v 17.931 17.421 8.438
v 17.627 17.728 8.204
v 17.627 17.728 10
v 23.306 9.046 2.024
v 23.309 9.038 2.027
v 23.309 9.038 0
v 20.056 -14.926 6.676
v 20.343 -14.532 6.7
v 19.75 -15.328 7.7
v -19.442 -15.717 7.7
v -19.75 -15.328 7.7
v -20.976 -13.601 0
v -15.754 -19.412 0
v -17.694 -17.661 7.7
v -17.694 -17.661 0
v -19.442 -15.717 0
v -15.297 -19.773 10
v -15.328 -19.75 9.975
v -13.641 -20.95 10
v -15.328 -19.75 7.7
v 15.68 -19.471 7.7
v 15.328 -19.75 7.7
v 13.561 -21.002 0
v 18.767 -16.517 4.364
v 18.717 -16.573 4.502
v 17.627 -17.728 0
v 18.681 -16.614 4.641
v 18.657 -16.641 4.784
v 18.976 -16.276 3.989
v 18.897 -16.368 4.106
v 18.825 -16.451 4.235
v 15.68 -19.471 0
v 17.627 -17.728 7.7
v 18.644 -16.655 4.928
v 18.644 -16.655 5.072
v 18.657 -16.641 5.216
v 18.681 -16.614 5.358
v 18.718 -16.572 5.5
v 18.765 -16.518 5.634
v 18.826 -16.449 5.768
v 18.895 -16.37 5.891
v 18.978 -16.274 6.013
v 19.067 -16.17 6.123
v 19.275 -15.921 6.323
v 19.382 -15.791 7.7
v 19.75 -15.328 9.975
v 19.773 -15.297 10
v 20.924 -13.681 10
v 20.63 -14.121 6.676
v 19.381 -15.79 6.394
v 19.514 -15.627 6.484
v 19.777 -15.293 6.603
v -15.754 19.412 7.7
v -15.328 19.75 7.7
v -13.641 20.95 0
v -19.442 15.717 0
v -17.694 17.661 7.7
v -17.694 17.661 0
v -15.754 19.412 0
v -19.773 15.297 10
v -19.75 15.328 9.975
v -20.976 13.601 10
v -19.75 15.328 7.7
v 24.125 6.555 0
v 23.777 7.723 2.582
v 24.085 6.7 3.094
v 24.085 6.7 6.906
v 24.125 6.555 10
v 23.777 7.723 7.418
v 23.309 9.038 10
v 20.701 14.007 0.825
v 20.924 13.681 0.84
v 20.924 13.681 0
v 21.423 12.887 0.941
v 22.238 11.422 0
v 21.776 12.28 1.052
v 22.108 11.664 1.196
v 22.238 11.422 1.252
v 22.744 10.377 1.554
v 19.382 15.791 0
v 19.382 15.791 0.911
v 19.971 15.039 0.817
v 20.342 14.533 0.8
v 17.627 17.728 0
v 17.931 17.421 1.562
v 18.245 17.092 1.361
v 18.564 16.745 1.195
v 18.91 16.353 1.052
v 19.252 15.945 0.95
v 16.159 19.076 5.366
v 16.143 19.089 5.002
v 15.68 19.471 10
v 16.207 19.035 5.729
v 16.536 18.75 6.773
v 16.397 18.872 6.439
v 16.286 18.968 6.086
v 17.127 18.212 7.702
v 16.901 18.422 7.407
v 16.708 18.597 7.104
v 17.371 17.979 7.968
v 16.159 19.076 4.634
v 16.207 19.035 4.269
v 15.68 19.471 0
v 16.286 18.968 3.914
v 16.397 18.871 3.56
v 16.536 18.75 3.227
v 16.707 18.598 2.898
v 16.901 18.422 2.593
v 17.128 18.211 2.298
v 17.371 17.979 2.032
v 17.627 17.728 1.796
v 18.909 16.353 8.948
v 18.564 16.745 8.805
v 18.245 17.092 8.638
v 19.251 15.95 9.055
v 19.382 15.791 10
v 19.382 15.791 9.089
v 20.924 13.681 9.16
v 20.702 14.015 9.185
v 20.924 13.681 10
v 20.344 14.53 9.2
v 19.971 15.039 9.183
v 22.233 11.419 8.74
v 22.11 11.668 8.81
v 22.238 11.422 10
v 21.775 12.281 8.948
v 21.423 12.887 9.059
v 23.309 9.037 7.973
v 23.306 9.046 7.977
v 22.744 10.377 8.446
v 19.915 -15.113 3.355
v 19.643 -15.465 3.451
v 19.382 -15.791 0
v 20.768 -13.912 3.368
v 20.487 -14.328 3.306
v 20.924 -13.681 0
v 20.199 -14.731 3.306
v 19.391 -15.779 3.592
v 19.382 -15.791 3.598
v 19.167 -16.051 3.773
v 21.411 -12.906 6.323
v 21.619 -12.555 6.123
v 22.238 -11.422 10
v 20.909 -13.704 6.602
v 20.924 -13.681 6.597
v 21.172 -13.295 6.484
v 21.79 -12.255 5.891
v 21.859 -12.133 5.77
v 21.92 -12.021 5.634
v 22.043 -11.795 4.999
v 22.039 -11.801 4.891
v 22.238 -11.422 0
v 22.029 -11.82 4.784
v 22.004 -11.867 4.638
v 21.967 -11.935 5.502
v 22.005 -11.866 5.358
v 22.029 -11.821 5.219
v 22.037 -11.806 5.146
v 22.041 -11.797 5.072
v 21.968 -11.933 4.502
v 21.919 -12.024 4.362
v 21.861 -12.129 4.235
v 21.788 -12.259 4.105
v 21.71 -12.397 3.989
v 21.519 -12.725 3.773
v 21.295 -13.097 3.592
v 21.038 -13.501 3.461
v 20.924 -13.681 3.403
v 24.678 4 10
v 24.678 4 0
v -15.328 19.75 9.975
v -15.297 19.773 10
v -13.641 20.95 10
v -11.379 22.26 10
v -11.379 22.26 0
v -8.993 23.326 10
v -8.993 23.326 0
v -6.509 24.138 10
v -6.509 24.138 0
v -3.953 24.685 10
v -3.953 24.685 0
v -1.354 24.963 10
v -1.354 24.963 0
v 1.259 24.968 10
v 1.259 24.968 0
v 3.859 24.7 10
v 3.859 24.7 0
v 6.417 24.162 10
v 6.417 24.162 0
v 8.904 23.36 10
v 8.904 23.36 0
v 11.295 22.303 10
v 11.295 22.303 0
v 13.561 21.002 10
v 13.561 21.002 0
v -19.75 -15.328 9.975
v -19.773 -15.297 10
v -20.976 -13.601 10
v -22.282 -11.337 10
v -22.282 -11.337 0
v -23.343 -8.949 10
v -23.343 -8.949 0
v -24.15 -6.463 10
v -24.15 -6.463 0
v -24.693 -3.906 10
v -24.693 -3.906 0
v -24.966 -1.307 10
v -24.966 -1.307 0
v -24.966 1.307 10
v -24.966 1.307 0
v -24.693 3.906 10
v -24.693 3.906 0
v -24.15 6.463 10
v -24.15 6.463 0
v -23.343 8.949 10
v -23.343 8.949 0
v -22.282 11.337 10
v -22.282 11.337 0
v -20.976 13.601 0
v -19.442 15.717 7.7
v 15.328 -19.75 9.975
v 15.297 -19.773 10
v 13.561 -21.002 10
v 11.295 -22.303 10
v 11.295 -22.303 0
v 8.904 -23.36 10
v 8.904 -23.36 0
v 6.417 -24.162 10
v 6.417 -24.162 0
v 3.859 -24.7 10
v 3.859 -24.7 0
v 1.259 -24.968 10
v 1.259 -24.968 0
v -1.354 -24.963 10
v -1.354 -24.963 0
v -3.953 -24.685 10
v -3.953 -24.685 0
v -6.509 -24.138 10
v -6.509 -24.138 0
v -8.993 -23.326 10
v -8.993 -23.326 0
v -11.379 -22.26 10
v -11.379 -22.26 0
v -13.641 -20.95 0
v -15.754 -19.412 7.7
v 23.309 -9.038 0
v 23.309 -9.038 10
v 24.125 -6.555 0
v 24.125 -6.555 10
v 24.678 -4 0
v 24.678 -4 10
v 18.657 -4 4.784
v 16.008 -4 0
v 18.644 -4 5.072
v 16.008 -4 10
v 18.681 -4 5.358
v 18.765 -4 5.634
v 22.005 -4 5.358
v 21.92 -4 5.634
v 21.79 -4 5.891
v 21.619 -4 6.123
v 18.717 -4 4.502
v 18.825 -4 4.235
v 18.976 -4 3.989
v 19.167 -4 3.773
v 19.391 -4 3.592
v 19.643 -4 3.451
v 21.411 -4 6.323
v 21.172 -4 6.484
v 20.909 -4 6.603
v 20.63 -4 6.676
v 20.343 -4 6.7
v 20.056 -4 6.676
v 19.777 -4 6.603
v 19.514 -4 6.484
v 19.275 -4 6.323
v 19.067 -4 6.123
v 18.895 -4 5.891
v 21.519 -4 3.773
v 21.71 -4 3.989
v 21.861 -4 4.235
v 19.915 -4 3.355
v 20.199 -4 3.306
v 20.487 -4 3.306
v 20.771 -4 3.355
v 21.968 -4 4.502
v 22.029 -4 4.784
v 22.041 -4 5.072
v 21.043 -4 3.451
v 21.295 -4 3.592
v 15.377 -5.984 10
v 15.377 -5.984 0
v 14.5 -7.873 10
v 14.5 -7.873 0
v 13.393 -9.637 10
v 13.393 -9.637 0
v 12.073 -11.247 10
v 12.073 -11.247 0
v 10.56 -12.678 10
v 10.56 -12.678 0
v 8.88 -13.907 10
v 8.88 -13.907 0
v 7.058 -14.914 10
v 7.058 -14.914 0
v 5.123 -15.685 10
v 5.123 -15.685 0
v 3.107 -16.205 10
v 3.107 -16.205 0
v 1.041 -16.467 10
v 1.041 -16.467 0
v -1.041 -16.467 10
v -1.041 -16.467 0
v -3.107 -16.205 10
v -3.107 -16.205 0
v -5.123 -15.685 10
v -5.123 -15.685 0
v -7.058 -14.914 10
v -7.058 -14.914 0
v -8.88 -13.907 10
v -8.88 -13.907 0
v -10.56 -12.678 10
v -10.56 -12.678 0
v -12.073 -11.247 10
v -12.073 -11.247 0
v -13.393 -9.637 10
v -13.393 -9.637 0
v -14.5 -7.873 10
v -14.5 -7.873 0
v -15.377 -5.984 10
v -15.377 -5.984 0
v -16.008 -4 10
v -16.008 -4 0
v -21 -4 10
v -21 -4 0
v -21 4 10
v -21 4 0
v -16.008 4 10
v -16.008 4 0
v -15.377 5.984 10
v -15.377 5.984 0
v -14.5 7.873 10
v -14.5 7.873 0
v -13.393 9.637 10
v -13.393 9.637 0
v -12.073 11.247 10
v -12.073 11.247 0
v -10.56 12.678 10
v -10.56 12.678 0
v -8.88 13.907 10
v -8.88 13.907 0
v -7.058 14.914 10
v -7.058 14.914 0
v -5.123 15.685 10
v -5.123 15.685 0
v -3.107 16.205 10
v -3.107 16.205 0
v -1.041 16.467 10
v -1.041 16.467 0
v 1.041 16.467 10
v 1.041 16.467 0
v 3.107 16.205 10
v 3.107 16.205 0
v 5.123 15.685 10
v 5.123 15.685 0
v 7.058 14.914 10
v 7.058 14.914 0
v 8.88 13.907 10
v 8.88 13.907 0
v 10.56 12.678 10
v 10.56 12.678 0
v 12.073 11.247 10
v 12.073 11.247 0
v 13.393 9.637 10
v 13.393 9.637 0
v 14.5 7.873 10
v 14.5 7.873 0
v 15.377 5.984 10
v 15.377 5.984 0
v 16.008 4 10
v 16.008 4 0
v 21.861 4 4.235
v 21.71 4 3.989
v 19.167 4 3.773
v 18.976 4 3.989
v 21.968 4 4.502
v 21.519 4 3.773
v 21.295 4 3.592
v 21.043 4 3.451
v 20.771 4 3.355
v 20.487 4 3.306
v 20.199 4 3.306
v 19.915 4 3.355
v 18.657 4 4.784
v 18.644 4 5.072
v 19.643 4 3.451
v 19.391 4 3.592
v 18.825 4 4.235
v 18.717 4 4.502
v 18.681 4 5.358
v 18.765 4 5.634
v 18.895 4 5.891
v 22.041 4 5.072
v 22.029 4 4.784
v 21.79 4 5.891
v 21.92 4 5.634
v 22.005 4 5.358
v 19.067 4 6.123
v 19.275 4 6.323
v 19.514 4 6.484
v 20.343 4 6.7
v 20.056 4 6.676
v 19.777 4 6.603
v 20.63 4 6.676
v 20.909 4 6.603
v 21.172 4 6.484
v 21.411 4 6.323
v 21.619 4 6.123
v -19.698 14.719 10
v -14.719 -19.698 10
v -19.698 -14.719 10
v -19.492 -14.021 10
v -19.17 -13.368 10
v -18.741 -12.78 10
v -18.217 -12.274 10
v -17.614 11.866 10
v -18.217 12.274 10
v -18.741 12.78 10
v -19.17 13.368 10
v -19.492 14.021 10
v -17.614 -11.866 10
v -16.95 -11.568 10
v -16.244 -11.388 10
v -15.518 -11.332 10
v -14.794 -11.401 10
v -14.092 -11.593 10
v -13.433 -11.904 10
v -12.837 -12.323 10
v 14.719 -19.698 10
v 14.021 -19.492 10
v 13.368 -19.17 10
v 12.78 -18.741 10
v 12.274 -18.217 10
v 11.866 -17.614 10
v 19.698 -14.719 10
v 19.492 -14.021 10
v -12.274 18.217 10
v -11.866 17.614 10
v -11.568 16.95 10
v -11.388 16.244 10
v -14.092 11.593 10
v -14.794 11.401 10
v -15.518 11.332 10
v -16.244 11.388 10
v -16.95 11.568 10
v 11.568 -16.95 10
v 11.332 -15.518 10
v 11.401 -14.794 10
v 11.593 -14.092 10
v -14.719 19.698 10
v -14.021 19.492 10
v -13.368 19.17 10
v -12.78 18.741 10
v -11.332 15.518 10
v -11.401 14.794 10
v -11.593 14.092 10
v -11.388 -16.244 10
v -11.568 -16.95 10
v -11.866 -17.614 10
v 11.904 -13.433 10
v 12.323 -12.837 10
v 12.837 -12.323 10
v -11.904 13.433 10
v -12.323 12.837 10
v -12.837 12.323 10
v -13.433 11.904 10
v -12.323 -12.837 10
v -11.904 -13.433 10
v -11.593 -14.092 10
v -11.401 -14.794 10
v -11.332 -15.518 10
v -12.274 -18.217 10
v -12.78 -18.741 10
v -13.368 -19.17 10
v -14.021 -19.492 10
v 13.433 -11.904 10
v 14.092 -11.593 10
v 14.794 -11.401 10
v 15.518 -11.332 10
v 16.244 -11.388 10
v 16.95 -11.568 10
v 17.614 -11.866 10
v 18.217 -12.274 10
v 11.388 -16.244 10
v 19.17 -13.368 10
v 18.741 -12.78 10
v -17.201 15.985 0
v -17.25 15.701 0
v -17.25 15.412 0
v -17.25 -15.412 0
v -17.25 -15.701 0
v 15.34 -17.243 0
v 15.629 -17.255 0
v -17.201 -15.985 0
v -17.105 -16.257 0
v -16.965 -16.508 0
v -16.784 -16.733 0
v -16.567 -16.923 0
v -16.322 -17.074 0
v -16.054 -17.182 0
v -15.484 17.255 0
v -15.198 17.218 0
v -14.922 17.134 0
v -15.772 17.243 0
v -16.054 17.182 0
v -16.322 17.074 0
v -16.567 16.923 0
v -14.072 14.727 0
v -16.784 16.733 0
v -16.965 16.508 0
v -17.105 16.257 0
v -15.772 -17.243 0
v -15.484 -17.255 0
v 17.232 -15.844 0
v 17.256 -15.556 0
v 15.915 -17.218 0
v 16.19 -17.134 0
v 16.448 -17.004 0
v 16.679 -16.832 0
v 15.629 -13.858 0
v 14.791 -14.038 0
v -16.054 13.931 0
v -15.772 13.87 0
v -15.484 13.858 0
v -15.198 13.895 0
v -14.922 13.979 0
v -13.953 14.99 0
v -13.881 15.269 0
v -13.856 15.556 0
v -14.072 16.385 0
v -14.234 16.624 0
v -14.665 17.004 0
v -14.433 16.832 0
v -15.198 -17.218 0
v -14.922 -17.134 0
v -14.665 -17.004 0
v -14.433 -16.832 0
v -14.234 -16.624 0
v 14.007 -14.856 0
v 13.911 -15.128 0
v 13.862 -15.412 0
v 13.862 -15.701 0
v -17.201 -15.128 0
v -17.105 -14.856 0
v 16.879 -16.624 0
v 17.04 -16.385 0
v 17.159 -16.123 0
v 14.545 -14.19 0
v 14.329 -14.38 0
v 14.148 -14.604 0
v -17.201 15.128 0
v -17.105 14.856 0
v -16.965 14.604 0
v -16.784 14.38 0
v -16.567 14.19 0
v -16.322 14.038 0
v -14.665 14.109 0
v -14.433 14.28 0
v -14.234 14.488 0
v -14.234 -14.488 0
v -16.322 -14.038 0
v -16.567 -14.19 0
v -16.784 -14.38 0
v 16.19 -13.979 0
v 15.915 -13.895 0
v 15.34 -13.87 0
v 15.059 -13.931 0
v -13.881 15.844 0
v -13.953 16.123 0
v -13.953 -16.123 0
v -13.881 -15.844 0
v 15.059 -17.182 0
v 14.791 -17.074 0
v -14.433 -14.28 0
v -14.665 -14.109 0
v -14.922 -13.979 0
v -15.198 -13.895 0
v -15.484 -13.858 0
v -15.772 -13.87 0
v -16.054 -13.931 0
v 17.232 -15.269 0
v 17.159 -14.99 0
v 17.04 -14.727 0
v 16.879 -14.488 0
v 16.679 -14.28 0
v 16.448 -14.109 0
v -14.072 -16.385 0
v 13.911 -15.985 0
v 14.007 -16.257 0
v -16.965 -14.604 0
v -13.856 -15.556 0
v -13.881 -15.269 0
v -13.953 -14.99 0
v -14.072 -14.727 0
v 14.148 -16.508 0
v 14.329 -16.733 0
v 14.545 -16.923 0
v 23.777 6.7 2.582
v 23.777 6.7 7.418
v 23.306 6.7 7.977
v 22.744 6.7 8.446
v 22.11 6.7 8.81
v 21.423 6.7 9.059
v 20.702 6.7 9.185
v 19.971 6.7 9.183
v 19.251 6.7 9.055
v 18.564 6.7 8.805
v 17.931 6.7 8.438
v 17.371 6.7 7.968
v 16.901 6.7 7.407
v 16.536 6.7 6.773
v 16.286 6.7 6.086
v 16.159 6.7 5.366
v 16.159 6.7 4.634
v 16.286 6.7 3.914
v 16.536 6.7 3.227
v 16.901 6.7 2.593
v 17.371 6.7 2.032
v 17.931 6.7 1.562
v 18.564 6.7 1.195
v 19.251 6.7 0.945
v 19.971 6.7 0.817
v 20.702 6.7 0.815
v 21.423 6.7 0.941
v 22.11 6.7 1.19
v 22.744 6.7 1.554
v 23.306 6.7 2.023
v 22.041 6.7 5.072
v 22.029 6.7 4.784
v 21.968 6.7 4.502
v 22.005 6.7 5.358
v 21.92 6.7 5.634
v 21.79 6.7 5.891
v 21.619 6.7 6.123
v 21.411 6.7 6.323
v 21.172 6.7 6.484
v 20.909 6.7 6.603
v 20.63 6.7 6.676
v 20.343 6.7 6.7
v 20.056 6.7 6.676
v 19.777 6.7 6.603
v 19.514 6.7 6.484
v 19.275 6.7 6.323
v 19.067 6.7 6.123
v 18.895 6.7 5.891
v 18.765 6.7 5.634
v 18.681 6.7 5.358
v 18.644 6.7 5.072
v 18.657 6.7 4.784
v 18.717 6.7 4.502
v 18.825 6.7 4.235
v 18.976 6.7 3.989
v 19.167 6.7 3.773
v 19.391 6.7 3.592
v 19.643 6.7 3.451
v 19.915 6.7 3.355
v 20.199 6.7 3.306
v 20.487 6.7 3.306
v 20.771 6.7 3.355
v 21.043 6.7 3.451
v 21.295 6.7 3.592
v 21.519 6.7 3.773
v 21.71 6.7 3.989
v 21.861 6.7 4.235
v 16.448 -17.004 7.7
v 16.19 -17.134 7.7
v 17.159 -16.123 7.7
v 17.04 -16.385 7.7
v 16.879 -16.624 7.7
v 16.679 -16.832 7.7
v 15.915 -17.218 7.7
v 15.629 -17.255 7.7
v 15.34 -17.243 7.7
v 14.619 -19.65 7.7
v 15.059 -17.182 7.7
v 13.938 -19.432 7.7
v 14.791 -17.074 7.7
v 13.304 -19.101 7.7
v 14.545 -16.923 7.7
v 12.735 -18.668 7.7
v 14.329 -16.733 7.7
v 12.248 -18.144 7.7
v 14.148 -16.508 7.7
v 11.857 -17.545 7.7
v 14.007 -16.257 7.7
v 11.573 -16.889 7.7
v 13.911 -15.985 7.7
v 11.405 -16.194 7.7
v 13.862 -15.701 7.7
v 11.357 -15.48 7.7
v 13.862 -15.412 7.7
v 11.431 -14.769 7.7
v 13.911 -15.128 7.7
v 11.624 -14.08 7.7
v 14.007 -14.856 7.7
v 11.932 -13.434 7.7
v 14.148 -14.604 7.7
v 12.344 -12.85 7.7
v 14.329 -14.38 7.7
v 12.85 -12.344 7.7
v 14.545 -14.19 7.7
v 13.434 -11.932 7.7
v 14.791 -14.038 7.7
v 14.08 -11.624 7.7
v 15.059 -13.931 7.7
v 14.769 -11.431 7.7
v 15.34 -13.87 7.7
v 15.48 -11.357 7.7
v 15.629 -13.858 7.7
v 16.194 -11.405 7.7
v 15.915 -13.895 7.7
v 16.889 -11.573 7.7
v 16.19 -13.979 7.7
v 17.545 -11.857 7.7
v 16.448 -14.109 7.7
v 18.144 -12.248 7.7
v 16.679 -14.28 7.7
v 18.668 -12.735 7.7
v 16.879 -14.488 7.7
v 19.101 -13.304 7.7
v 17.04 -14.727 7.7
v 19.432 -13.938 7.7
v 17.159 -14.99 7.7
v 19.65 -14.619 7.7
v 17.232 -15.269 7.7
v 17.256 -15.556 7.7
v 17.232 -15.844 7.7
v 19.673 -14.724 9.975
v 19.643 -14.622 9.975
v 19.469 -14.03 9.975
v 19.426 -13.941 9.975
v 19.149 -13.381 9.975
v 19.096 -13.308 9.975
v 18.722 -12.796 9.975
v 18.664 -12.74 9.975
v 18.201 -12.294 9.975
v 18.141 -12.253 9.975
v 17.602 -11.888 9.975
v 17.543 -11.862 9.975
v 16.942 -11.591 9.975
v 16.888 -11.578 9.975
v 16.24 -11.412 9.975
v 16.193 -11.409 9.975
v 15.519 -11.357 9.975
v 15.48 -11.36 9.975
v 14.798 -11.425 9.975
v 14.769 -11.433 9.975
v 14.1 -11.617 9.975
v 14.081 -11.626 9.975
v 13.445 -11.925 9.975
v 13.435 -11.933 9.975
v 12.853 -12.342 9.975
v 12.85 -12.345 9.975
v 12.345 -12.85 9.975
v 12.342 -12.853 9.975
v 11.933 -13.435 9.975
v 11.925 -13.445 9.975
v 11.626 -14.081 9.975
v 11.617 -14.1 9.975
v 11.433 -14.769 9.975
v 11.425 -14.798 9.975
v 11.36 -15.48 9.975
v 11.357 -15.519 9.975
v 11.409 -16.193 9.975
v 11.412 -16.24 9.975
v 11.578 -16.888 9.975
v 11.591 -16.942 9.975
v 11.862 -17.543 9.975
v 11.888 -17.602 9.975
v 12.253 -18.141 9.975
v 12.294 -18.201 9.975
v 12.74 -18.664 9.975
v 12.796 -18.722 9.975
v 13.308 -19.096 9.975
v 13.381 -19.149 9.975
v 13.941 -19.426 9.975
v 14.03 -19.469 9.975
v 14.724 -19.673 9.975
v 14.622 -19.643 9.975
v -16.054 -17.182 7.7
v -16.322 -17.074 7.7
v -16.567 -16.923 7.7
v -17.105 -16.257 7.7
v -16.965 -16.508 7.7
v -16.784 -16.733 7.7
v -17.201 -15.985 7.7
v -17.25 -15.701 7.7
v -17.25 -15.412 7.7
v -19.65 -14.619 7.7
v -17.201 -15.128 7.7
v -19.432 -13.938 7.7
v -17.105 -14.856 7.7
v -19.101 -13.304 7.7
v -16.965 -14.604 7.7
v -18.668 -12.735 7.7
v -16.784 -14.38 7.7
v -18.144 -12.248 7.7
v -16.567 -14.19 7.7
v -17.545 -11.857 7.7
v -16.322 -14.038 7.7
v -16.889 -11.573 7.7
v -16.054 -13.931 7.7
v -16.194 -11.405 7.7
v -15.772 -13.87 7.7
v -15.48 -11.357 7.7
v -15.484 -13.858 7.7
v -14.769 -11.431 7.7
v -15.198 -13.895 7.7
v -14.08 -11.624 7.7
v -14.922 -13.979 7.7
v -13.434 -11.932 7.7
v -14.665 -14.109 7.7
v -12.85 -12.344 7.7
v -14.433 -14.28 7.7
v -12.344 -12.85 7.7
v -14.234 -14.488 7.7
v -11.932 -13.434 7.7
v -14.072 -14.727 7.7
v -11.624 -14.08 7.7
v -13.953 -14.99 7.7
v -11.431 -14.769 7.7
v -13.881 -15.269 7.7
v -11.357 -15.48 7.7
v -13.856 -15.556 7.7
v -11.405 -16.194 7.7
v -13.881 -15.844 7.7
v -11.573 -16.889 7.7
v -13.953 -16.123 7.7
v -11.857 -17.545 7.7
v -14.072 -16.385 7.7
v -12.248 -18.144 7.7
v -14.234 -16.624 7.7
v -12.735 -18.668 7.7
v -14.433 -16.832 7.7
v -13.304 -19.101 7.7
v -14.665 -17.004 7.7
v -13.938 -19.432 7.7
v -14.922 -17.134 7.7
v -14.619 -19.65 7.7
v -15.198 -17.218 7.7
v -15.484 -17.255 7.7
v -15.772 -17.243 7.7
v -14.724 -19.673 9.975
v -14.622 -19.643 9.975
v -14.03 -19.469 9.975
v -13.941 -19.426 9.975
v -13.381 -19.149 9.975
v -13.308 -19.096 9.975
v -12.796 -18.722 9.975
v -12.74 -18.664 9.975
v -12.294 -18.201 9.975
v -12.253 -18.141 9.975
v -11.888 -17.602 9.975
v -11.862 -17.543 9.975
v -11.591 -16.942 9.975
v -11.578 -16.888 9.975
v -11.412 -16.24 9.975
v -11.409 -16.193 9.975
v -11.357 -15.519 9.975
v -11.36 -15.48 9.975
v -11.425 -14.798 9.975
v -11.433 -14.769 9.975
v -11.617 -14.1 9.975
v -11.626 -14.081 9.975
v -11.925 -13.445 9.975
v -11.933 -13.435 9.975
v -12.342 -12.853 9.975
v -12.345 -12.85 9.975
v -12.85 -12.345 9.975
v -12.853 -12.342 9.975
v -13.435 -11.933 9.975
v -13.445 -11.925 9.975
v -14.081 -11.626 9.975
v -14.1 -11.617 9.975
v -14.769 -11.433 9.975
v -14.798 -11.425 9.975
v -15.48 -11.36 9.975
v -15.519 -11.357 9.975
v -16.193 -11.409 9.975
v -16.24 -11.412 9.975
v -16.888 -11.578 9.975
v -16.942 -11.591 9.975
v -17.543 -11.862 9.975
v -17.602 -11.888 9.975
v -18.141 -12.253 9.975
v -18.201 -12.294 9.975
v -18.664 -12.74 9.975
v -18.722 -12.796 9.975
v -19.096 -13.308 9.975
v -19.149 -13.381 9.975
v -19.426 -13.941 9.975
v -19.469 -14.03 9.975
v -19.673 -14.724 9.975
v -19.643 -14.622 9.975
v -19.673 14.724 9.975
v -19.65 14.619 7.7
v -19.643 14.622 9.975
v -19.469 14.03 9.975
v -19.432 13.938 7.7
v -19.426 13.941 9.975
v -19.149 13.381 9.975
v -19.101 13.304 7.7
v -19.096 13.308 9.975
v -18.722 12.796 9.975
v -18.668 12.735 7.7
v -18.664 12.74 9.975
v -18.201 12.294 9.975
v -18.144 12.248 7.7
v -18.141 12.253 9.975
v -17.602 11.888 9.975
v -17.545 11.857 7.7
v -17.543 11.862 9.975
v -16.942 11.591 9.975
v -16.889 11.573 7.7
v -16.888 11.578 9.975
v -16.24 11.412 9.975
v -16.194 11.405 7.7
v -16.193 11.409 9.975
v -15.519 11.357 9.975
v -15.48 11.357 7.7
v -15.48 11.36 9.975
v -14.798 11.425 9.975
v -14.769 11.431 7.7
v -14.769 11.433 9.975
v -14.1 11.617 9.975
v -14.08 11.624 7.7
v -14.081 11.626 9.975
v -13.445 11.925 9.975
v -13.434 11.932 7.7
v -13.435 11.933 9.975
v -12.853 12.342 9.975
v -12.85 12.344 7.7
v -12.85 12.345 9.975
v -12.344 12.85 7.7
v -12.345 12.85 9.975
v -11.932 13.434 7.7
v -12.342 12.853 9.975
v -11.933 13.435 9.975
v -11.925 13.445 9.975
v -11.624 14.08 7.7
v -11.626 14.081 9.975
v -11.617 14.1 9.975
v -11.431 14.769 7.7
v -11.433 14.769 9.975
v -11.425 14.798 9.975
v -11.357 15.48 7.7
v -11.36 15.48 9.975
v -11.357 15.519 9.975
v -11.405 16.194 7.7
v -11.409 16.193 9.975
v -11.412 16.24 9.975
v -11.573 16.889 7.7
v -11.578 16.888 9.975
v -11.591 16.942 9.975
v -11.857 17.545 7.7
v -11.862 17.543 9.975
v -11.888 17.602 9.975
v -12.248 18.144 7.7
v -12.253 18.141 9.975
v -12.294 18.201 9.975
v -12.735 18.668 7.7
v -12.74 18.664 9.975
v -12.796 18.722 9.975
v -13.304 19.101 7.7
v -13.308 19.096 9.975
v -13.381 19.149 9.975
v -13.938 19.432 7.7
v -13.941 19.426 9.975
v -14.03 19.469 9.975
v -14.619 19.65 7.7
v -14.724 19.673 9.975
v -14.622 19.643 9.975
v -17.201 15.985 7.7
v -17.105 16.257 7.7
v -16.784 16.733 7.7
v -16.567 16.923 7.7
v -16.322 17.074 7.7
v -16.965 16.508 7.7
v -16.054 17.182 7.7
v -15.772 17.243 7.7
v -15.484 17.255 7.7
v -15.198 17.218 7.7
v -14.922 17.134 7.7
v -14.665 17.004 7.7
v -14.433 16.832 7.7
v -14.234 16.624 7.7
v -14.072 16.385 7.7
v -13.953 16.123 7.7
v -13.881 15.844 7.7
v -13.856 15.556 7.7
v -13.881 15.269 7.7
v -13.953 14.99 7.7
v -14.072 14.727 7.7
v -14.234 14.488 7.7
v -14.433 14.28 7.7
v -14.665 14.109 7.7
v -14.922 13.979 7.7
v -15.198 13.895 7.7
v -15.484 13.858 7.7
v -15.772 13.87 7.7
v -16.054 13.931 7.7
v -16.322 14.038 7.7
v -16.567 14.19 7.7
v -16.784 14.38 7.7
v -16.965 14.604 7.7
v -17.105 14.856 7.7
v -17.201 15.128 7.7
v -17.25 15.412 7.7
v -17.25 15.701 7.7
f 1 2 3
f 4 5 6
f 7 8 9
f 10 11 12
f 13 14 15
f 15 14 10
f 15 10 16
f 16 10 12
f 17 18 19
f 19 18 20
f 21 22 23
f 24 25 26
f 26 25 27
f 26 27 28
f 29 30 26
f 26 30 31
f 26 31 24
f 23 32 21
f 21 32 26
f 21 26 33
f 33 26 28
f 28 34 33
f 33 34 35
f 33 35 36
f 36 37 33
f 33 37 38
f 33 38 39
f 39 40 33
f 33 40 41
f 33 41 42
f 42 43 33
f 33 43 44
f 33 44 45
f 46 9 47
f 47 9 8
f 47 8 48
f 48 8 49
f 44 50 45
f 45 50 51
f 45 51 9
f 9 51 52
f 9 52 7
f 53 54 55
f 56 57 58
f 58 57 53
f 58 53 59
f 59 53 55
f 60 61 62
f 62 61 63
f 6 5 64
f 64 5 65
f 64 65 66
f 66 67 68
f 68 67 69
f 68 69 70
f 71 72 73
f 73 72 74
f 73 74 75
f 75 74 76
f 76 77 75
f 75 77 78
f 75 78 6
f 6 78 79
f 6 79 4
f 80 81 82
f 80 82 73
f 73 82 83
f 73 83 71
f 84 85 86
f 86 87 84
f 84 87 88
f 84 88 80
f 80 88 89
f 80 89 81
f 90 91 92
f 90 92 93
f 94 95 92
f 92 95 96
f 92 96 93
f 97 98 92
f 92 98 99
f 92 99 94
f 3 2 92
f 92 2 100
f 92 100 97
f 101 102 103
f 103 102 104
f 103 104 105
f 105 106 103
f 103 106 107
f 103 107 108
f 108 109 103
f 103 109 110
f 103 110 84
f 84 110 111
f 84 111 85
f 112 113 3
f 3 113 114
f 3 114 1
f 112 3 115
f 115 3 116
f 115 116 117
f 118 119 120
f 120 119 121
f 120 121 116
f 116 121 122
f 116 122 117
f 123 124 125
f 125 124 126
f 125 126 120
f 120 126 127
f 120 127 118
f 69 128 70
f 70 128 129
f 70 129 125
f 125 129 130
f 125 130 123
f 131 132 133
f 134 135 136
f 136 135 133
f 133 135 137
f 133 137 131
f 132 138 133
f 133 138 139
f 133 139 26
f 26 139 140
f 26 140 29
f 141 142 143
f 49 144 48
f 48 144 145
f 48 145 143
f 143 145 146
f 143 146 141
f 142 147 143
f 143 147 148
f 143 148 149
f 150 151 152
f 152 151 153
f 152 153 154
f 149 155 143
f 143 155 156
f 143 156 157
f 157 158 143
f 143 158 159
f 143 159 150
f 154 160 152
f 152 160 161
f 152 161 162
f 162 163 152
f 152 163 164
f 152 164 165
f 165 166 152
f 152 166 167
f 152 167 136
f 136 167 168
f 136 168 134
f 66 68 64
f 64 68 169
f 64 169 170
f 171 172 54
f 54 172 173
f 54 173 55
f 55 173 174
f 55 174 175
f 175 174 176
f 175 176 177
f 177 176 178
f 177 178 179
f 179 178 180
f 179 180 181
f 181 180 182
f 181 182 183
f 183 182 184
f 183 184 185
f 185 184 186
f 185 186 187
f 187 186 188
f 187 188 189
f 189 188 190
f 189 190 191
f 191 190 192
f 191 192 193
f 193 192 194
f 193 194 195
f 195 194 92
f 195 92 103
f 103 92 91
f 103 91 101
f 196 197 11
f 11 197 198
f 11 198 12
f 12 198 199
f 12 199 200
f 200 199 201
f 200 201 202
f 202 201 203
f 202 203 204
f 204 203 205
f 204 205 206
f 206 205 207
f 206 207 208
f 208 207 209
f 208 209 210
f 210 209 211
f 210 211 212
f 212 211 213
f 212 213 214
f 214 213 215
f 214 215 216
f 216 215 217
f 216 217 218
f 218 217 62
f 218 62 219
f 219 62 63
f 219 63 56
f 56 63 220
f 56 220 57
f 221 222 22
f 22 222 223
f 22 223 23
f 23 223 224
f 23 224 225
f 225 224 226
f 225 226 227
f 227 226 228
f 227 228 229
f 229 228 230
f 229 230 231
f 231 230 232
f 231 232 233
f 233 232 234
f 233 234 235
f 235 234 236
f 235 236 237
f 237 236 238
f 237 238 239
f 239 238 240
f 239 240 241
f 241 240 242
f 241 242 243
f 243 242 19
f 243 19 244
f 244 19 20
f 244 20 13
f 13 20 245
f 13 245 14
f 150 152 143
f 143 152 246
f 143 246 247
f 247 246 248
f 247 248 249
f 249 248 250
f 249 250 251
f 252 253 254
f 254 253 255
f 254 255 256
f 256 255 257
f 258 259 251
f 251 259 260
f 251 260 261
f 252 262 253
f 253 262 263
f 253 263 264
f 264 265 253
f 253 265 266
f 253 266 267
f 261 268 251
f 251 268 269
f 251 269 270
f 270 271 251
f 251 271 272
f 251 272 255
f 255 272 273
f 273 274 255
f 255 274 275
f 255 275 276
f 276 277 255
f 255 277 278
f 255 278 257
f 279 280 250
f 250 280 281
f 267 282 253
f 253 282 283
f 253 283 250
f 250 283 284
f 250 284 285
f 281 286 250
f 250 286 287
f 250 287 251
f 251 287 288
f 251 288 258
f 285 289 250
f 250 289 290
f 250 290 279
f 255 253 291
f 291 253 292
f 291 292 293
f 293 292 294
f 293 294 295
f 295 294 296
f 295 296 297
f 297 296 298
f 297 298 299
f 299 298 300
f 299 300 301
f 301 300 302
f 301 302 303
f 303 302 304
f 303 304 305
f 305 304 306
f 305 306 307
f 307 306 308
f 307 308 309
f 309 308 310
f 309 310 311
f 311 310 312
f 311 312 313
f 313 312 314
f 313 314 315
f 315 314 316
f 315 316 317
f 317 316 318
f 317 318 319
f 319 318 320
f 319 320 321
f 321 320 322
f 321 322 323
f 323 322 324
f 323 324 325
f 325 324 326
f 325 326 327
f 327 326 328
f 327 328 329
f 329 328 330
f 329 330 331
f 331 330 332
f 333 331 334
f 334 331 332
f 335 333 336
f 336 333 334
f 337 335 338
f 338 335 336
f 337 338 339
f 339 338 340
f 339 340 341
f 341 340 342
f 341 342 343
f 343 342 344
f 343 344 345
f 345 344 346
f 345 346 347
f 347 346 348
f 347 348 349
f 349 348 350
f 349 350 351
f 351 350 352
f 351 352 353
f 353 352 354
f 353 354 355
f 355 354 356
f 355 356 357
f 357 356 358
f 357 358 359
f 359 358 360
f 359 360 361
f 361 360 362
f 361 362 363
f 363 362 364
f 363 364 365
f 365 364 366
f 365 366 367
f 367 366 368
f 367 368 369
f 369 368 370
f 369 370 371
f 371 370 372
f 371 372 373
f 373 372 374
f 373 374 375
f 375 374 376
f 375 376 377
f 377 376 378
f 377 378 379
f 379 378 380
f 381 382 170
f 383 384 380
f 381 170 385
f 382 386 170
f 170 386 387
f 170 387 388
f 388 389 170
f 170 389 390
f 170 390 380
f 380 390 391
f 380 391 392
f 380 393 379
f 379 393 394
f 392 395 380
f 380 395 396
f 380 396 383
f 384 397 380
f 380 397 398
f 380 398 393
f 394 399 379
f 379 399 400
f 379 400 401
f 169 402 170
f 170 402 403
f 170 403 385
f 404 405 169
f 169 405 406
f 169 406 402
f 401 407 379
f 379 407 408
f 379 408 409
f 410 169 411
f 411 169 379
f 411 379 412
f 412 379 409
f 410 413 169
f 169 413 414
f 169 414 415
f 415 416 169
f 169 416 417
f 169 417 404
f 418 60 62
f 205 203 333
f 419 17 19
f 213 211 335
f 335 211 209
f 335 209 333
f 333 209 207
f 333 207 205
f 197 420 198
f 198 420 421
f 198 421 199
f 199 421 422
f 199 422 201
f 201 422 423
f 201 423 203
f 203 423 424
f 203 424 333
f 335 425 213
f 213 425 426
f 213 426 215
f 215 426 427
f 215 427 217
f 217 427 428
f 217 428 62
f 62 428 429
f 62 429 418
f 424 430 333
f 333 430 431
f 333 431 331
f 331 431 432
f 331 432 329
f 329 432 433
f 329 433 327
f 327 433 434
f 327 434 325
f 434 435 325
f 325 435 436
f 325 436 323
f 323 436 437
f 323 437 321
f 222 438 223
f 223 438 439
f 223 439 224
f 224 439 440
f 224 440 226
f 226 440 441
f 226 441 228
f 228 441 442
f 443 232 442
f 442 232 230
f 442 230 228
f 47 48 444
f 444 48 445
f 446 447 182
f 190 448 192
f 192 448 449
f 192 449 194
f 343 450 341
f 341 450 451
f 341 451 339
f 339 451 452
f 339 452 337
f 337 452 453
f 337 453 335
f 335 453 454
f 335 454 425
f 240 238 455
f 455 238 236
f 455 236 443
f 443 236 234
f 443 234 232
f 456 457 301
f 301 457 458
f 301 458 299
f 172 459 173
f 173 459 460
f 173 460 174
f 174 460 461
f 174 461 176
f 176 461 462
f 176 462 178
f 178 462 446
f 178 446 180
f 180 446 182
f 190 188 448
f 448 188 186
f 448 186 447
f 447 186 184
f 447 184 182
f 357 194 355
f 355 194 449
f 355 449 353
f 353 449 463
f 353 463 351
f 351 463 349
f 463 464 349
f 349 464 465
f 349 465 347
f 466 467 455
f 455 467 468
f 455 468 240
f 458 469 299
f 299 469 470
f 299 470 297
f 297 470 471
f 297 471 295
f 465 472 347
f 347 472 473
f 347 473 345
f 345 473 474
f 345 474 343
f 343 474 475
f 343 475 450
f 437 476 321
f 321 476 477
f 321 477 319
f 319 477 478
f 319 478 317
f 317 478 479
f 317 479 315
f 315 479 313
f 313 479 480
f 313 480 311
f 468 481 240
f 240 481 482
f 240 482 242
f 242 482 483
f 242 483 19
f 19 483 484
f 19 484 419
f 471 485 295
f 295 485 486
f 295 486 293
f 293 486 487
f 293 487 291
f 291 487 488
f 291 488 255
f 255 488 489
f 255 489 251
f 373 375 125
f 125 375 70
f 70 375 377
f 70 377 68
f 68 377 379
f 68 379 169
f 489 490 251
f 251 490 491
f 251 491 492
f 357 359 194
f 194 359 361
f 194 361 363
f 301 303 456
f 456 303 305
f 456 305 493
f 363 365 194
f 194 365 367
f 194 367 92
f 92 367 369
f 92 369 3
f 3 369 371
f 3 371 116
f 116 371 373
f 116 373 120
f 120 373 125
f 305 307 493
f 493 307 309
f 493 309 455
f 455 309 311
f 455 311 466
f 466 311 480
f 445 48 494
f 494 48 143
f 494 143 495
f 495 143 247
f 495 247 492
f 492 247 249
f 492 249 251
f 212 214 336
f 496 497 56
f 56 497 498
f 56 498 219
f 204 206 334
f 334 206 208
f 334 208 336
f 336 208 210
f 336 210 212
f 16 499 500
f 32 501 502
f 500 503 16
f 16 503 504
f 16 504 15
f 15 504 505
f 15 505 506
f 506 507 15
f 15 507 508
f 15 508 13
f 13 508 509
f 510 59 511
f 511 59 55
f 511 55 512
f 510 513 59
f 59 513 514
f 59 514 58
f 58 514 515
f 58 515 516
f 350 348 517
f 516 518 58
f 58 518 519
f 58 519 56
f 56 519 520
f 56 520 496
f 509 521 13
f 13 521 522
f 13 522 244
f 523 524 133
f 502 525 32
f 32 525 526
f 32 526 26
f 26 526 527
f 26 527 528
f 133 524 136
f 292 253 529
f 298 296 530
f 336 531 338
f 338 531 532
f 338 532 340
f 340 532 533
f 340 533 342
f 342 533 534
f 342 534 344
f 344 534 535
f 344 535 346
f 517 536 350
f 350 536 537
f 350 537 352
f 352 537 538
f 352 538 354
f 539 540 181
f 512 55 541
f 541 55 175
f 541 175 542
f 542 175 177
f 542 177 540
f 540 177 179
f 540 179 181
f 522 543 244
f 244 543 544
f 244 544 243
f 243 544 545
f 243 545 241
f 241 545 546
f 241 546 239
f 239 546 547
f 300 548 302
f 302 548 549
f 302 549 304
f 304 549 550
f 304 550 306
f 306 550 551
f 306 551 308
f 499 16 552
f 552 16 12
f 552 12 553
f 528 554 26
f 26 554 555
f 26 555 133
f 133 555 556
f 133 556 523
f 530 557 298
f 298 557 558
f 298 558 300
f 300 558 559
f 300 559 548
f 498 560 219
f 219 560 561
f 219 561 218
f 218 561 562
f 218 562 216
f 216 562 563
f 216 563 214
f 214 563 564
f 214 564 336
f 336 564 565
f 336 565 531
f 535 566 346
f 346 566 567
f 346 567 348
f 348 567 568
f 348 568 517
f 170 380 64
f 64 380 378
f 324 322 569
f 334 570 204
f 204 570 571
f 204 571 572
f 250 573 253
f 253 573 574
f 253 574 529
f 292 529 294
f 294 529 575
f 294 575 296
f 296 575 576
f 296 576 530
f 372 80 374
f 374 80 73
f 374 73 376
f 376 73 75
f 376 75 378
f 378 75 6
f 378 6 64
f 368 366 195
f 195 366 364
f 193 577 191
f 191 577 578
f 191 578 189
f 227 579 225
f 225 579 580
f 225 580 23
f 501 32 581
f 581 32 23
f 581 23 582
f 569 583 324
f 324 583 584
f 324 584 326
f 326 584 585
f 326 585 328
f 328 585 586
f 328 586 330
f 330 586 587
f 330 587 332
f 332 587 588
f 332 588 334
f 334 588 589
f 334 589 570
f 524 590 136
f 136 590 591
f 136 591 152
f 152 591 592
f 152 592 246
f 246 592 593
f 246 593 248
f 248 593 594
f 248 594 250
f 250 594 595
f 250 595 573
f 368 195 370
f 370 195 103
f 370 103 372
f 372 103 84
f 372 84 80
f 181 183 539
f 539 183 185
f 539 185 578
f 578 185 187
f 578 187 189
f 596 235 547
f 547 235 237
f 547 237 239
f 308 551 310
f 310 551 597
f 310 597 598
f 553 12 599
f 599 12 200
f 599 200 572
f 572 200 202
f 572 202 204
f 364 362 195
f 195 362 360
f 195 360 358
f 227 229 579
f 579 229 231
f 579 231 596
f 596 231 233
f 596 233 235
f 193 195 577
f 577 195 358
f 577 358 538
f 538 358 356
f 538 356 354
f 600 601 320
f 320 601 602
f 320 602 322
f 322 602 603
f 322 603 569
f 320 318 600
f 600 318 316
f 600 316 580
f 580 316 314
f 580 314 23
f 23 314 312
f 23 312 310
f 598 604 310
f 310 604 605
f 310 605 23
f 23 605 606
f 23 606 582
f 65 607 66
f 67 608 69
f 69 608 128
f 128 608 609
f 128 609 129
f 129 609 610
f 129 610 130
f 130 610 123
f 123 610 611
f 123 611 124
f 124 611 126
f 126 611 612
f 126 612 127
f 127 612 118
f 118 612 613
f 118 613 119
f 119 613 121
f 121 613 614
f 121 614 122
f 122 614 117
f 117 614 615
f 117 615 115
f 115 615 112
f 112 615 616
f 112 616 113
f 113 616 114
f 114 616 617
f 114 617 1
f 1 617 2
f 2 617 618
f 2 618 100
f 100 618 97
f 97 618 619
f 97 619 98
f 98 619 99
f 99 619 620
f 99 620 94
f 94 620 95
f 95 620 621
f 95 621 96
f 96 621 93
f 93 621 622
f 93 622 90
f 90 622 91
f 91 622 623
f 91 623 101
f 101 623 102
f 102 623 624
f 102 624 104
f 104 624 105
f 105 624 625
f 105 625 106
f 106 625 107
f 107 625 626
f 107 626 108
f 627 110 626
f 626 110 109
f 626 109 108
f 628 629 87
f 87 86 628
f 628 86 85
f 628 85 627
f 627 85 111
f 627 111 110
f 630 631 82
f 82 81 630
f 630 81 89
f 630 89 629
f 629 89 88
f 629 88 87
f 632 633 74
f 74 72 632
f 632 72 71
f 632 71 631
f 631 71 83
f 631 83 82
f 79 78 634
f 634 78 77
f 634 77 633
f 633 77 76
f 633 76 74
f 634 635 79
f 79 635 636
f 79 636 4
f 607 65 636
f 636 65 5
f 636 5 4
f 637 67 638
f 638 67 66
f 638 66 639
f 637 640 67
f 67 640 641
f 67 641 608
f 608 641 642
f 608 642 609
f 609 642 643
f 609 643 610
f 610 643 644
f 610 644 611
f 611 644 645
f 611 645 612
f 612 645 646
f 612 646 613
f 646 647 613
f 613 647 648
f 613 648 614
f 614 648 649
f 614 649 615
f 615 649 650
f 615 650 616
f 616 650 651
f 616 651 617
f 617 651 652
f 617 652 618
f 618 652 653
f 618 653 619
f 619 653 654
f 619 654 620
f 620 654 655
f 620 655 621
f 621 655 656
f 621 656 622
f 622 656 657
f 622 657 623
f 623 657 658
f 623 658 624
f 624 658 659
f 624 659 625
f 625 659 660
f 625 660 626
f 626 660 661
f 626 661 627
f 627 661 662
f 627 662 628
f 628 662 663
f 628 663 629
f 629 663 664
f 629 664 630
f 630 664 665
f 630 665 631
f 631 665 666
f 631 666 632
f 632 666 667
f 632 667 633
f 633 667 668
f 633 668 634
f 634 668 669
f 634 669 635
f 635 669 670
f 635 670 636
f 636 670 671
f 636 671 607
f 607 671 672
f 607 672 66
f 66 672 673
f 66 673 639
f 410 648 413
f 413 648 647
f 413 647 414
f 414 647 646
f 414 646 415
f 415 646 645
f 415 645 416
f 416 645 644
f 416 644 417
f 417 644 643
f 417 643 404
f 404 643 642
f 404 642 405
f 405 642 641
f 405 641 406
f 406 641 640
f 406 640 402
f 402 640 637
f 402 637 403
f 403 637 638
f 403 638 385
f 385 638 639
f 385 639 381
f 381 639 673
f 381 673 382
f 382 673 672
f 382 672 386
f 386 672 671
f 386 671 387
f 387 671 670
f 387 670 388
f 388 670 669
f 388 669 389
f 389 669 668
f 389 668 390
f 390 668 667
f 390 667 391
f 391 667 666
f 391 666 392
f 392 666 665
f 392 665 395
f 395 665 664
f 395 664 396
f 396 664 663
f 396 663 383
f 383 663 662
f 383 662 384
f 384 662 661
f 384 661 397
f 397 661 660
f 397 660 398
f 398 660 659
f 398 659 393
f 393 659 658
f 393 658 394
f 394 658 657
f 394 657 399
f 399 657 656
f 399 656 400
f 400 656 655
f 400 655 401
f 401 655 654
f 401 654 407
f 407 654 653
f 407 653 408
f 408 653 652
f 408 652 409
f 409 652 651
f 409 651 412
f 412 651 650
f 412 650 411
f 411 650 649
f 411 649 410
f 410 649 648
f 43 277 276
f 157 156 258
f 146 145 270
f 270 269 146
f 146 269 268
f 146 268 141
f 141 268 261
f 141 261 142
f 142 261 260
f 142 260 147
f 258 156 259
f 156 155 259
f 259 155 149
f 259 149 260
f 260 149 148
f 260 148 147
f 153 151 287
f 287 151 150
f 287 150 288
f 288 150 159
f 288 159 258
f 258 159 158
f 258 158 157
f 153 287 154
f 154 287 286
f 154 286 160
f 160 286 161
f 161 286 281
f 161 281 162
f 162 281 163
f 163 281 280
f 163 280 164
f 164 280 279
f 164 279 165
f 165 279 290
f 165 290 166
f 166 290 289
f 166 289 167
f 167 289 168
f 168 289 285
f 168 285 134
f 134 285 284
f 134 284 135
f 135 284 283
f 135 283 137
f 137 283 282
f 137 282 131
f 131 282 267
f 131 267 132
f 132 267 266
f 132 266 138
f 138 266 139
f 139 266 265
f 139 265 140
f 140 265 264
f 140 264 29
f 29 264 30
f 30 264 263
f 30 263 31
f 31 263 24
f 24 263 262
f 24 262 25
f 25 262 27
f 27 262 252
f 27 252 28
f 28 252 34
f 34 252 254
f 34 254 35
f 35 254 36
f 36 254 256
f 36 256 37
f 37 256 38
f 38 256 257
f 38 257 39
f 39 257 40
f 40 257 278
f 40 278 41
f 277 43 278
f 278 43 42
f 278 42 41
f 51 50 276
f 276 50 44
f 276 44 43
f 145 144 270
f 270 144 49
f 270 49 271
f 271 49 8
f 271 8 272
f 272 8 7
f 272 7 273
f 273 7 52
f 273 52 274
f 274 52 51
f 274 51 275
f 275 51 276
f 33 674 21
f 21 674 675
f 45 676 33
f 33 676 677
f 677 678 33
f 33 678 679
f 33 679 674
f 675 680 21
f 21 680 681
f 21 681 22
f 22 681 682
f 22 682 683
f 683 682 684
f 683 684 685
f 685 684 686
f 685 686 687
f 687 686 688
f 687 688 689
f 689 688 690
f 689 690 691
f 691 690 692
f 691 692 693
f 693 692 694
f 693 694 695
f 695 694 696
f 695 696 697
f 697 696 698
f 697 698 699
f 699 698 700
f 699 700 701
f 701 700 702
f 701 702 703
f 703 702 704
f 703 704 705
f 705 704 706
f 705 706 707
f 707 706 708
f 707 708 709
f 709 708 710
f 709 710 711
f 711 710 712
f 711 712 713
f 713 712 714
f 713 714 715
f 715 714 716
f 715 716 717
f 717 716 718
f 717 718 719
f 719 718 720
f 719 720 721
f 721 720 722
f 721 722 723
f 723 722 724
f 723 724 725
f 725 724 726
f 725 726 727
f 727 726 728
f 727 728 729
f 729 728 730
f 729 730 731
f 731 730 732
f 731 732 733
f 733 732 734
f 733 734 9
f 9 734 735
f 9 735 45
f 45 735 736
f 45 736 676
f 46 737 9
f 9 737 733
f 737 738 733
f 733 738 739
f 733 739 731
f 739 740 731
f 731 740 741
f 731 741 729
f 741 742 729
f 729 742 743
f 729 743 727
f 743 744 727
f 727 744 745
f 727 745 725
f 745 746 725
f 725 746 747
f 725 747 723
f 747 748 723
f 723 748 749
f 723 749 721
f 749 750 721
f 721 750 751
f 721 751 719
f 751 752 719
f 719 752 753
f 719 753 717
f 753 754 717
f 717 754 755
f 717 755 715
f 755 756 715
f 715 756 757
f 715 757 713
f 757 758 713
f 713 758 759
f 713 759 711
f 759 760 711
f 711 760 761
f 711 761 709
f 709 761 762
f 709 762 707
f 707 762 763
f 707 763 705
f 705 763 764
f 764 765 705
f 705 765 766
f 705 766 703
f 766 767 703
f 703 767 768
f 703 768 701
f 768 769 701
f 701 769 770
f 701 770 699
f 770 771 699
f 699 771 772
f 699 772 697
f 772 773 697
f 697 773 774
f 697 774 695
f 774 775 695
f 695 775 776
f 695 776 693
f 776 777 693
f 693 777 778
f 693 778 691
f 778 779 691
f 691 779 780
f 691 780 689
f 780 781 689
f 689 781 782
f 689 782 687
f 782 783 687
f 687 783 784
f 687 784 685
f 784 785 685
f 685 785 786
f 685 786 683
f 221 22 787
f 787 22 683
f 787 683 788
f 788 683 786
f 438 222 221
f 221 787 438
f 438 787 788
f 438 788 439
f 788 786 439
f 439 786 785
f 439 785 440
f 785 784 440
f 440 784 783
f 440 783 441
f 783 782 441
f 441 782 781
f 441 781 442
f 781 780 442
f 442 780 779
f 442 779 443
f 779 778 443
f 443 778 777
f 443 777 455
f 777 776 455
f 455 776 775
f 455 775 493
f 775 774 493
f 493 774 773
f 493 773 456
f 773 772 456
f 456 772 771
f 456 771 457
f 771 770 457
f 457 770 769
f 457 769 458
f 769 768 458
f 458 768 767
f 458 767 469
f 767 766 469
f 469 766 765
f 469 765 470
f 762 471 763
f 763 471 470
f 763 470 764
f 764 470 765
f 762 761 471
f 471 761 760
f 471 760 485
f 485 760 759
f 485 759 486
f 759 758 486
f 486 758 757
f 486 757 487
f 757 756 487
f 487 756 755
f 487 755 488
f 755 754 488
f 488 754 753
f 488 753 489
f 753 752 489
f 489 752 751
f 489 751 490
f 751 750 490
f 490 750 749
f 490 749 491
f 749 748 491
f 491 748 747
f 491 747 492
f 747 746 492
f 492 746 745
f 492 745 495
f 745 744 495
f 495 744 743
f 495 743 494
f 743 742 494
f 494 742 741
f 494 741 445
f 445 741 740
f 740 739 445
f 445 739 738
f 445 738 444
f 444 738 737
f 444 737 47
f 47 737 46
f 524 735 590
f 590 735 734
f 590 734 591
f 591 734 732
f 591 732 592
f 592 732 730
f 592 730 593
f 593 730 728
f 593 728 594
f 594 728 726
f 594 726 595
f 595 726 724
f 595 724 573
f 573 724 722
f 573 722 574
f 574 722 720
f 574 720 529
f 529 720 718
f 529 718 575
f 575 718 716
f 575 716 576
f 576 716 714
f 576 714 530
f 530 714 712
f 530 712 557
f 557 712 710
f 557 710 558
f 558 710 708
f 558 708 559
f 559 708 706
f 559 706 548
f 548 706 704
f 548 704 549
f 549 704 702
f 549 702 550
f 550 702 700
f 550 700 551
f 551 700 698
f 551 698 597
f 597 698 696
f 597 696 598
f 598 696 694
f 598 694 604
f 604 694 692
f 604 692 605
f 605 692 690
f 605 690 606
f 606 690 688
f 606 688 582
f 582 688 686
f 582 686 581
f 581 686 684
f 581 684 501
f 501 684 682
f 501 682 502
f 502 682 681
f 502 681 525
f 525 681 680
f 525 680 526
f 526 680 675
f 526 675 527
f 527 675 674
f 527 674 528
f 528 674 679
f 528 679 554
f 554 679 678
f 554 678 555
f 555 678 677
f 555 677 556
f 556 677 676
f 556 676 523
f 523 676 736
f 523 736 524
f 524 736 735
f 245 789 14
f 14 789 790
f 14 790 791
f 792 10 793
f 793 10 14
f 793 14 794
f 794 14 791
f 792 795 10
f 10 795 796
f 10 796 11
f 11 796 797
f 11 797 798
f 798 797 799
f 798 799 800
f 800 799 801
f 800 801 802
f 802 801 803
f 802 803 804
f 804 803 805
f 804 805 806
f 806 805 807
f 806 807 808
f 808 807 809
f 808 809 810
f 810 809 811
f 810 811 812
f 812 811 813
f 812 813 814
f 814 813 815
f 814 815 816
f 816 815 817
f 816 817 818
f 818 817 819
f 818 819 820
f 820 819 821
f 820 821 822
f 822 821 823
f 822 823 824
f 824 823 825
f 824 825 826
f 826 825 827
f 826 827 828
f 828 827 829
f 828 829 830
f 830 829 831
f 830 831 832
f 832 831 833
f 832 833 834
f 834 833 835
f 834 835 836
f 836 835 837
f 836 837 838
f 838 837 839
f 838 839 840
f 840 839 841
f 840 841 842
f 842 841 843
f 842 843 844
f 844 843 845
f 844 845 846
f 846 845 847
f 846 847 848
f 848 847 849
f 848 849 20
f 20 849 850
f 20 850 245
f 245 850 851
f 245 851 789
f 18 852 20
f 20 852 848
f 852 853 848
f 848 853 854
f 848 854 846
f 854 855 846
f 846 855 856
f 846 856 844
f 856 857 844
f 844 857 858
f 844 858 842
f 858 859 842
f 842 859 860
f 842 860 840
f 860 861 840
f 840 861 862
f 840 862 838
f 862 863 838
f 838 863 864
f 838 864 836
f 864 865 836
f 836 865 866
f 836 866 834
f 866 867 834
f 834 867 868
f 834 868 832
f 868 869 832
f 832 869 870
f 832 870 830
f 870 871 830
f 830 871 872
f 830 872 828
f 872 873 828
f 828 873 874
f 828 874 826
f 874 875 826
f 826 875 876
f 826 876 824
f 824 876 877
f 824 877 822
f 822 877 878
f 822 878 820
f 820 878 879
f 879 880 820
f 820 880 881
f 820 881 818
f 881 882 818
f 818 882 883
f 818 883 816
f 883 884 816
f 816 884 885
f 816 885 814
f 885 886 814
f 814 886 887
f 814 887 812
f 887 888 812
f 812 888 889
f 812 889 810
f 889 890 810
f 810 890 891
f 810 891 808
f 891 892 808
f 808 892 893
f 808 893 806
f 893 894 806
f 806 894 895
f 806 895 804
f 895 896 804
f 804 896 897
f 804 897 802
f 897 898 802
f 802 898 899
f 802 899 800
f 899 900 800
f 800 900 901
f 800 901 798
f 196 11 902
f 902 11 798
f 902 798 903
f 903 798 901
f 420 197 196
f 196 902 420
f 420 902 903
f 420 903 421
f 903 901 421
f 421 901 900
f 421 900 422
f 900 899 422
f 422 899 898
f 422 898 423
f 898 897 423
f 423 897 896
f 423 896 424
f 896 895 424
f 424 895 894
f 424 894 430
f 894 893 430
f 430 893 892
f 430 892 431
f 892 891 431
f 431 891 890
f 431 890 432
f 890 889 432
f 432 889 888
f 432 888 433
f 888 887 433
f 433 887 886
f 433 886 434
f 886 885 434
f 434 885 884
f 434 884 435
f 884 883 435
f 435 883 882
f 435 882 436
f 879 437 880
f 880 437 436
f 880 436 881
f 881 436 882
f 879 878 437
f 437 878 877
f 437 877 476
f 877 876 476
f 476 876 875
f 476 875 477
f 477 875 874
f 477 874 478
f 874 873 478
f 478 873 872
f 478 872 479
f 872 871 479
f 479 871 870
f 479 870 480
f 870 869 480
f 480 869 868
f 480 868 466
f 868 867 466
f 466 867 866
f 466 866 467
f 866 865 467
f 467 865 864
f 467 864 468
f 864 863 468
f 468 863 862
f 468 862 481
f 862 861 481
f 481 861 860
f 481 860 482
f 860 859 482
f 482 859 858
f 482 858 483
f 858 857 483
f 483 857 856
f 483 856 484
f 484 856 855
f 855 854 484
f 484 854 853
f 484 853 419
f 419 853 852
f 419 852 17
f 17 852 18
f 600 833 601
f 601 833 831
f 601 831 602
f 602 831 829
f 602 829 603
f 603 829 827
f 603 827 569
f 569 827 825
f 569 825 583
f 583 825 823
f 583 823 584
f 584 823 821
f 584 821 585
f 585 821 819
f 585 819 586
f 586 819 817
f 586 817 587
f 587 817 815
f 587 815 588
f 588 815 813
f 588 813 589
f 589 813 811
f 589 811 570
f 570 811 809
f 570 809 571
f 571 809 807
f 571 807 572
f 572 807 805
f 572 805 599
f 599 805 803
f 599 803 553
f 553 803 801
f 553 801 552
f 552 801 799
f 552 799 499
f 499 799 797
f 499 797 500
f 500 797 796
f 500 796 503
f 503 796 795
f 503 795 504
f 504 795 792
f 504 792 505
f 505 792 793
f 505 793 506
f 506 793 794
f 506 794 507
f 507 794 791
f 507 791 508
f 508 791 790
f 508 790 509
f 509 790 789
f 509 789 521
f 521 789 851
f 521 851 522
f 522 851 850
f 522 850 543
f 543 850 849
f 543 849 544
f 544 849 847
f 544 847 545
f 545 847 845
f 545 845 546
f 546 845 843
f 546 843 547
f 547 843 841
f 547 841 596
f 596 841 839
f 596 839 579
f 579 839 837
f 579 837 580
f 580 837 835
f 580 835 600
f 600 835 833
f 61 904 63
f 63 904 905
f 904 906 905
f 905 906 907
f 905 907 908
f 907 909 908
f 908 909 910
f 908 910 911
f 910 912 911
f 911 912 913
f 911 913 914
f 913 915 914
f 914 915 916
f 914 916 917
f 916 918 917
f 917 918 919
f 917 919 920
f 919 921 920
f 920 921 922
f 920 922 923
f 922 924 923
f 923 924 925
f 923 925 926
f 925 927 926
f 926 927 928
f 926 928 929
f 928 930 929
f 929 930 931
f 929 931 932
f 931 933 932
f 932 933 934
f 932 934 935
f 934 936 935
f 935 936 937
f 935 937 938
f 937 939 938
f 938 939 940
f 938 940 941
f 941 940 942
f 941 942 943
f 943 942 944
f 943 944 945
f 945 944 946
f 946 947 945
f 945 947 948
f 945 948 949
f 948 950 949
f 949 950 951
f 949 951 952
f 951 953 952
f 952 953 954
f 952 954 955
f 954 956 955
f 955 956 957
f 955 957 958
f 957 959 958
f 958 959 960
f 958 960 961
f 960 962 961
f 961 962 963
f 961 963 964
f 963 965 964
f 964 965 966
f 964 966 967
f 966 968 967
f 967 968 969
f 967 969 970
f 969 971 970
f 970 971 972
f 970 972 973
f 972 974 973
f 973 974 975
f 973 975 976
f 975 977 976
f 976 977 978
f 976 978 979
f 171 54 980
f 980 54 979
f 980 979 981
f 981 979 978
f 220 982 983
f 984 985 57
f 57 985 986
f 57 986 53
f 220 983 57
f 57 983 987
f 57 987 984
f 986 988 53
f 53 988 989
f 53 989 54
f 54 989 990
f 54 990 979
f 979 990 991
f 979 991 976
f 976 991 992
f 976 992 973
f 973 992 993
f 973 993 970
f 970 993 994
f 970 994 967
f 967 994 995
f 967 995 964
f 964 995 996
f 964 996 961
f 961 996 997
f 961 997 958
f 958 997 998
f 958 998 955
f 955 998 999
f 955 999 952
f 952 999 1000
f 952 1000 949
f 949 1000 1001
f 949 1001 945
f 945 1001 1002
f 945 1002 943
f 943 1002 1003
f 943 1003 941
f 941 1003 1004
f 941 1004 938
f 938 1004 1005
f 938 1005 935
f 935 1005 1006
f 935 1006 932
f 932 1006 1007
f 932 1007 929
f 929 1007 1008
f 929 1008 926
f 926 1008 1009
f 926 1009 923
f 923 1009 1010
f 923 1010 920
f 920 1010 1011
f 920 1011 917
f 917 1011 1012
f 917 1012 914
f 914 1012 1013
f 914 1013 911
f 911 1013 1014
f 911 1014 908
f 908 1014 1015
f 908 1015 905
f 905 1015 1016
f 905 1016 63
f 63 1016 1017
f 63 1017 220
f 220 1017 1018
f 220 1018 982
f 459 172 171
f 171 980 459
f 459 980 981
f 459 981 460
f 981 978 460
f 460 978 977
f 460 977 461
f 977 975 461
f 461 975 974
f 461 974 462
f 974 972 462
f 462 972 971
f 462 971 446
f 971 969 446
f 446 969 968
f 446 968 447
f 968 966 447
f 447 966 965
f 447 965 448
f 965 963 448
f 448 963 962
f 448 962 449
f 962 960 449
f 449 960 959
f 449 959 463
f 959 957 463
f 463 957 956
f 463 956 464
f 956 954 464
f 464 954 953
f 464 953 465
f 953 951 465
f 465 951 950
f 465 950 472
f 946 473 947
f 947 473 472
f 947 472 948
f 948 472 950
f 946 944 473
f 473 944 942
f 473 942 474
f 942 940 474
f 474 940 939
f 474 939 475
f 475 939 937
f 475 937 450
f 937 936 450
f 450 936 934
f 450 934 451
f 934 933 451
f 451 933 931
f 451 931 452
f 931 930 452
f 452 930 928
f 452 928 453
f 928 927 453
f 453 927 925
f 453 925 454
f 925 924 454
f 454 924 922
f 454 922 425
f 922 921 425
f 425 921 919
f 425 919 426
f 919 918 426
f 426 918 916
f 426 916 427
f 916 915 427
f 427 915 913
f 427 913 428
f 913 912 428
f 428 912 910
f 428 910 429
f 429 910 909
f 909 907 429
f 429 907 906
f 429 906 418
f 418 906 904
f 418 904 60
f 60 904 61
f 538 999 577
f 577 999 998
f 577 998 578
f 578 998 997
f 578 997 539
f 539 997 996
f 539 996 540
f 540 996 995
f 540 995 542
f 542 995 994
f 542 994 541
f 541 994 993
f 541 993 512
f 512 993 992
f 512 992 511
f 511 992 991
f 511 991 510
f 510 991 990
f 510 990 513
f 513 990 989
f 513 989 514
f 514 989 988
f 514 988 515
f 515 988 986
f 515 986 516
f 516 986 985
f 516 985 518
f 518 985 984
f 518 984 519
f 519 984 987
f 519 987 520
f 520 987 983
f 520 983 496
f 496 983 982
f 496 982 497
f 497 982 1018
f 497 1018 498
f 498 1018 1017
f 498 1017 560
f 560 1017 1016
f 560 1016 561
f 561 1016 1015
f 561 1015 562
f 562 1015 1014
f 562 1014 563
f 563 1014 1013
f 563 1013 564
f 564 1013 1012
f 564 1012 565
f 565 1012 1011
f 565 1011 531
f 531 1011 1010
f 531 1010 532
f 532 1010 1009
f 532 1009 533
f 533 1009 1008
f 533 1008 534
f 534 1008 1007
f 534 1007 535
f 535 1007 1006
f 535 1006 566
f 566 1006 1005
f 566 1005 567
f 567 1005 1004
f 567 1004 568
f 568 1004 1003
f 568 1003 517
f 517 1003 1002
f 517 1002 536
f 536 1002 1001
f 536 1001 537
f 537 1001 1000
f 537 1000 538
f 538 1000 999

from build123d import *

# Parameters (mm, degrees)
BOSS_EXTRUDE1_DEPTH                           = 10
CBORE_FOR_M3_HEX_HEAD_MACHINE_SCREW3_AT_COUNT = 2
CBORE_FOR_M3_HEX_HEAD_MACHINE_SCREW3_AT_PITCH = 31.112698372
CBORE_FOR_M3_HEX_HEAD_MACHINE_SCREW3_2_COUNT  = 2
CBORE_FOR_M3_HEX_HEAD_MACHINE_SCREW3_2_PITCH  = 44


with BuildPart() as part:
    # Sketch1 → Boss-Extrude1 (new body)
    with BuildSketch(Plane.XY):
        with BuildLine():
            Line((-16.007810594, -4), (-21, -4))
            Line((-21, -4), (-21, 4))
            Line((-21, 4), (-16.007810594, 4))
            ThreePointArc((-16.007810594, 4), (0, 16.5), (16.007810594, 4))
            Line((16.007810594, 4), (24.677925359, 4))
            ThreePointArc((24.677925359, 4), (-25, 0), (24.677925359, -4))
            Line((24.677925359, -4), (16.007810594, -4))
            ThreePointArc((16.007810594, -4), (0, -16.5), (-16.007810594, -4))
        make_face()
    extrude(amount=BOSS_EXTRUDE1_DEPTH)

    # Sketch6 → CBORE for M3 Hex Head Machine Screw2 (revolve, cut)
    with BuildSketch(Plane(origin=(20.342867976, 24, 5), x_dir=(0, 0, 1), z_dir=(1, 0, 0))):
        Polygon((0, 0), (0, 49), (1.7, 49), (1.7, 17.3), (4.2, 17.3), (4.2, 0.025), (4.225, 0), align=None)
    revolve(axis=Axis((20.342867976, 30.35, 5), (0, -1, 0)), mode=Mode.SUBTRACT)

    # Sketch8 → CBORE for M3 Hex Head Machine Screw3 (revolve, cut)
    with BuildSketch(Plane(origin=(-15.556349186, 15.556349186, 10), x_dir=(0, -1, 0), z_dir=(1, 0, 0))):
        Polygon((0, 0), (0, 10), (1.7, 10), (1.7, 2.3), (4.2, 2.3), (4.2, 0.025), (4.225, 0), align=None)
    cbore_for_m3_hex_head_machine_screw3 = revolve(axis=Axis((-15.556349186, 15.556349186, 16.35), (0, 0, -1)), mode=Mode.SUBTRACT)

    # CBORE for M3 Hex Head Machine Screw3 at: CBORE for M3 Hex Head Machine Screw3 ×2
    with Locations(*[(0, -i * CBORE_FOR_M3_HEX_HEAD_MACHINE_SCREW3_AT_PITCH, 0) for i in range(1, CBORE_FOR_M3_HEX_HEAD_MACHINE_SCREW3_AT_COUNT)]):
        add(cbore_for_m3_hex_head_machine_screw3, mode=Mode.SUBTRACT)

    # CBORE for M3 Hex Head Machine Screw3 2: CBORE for M3 Hex Head Machine Screw3 ×2
    with Locations(*[Vector(0.707106781, -0.707106781, 0) * (i * CBORE_FOR_M3_HEX_HEAD_MACHINE_SCREW3_2_PITCH) for i in range(1, CBORE_FOR_M3_HEX_HEAD_MACHINE_SCREW3_2_COUNT)]):
        add(cbore_for_m3_hex_head_machine_screw3, mode=Mode.SUBTRACT)


solid = part.part
